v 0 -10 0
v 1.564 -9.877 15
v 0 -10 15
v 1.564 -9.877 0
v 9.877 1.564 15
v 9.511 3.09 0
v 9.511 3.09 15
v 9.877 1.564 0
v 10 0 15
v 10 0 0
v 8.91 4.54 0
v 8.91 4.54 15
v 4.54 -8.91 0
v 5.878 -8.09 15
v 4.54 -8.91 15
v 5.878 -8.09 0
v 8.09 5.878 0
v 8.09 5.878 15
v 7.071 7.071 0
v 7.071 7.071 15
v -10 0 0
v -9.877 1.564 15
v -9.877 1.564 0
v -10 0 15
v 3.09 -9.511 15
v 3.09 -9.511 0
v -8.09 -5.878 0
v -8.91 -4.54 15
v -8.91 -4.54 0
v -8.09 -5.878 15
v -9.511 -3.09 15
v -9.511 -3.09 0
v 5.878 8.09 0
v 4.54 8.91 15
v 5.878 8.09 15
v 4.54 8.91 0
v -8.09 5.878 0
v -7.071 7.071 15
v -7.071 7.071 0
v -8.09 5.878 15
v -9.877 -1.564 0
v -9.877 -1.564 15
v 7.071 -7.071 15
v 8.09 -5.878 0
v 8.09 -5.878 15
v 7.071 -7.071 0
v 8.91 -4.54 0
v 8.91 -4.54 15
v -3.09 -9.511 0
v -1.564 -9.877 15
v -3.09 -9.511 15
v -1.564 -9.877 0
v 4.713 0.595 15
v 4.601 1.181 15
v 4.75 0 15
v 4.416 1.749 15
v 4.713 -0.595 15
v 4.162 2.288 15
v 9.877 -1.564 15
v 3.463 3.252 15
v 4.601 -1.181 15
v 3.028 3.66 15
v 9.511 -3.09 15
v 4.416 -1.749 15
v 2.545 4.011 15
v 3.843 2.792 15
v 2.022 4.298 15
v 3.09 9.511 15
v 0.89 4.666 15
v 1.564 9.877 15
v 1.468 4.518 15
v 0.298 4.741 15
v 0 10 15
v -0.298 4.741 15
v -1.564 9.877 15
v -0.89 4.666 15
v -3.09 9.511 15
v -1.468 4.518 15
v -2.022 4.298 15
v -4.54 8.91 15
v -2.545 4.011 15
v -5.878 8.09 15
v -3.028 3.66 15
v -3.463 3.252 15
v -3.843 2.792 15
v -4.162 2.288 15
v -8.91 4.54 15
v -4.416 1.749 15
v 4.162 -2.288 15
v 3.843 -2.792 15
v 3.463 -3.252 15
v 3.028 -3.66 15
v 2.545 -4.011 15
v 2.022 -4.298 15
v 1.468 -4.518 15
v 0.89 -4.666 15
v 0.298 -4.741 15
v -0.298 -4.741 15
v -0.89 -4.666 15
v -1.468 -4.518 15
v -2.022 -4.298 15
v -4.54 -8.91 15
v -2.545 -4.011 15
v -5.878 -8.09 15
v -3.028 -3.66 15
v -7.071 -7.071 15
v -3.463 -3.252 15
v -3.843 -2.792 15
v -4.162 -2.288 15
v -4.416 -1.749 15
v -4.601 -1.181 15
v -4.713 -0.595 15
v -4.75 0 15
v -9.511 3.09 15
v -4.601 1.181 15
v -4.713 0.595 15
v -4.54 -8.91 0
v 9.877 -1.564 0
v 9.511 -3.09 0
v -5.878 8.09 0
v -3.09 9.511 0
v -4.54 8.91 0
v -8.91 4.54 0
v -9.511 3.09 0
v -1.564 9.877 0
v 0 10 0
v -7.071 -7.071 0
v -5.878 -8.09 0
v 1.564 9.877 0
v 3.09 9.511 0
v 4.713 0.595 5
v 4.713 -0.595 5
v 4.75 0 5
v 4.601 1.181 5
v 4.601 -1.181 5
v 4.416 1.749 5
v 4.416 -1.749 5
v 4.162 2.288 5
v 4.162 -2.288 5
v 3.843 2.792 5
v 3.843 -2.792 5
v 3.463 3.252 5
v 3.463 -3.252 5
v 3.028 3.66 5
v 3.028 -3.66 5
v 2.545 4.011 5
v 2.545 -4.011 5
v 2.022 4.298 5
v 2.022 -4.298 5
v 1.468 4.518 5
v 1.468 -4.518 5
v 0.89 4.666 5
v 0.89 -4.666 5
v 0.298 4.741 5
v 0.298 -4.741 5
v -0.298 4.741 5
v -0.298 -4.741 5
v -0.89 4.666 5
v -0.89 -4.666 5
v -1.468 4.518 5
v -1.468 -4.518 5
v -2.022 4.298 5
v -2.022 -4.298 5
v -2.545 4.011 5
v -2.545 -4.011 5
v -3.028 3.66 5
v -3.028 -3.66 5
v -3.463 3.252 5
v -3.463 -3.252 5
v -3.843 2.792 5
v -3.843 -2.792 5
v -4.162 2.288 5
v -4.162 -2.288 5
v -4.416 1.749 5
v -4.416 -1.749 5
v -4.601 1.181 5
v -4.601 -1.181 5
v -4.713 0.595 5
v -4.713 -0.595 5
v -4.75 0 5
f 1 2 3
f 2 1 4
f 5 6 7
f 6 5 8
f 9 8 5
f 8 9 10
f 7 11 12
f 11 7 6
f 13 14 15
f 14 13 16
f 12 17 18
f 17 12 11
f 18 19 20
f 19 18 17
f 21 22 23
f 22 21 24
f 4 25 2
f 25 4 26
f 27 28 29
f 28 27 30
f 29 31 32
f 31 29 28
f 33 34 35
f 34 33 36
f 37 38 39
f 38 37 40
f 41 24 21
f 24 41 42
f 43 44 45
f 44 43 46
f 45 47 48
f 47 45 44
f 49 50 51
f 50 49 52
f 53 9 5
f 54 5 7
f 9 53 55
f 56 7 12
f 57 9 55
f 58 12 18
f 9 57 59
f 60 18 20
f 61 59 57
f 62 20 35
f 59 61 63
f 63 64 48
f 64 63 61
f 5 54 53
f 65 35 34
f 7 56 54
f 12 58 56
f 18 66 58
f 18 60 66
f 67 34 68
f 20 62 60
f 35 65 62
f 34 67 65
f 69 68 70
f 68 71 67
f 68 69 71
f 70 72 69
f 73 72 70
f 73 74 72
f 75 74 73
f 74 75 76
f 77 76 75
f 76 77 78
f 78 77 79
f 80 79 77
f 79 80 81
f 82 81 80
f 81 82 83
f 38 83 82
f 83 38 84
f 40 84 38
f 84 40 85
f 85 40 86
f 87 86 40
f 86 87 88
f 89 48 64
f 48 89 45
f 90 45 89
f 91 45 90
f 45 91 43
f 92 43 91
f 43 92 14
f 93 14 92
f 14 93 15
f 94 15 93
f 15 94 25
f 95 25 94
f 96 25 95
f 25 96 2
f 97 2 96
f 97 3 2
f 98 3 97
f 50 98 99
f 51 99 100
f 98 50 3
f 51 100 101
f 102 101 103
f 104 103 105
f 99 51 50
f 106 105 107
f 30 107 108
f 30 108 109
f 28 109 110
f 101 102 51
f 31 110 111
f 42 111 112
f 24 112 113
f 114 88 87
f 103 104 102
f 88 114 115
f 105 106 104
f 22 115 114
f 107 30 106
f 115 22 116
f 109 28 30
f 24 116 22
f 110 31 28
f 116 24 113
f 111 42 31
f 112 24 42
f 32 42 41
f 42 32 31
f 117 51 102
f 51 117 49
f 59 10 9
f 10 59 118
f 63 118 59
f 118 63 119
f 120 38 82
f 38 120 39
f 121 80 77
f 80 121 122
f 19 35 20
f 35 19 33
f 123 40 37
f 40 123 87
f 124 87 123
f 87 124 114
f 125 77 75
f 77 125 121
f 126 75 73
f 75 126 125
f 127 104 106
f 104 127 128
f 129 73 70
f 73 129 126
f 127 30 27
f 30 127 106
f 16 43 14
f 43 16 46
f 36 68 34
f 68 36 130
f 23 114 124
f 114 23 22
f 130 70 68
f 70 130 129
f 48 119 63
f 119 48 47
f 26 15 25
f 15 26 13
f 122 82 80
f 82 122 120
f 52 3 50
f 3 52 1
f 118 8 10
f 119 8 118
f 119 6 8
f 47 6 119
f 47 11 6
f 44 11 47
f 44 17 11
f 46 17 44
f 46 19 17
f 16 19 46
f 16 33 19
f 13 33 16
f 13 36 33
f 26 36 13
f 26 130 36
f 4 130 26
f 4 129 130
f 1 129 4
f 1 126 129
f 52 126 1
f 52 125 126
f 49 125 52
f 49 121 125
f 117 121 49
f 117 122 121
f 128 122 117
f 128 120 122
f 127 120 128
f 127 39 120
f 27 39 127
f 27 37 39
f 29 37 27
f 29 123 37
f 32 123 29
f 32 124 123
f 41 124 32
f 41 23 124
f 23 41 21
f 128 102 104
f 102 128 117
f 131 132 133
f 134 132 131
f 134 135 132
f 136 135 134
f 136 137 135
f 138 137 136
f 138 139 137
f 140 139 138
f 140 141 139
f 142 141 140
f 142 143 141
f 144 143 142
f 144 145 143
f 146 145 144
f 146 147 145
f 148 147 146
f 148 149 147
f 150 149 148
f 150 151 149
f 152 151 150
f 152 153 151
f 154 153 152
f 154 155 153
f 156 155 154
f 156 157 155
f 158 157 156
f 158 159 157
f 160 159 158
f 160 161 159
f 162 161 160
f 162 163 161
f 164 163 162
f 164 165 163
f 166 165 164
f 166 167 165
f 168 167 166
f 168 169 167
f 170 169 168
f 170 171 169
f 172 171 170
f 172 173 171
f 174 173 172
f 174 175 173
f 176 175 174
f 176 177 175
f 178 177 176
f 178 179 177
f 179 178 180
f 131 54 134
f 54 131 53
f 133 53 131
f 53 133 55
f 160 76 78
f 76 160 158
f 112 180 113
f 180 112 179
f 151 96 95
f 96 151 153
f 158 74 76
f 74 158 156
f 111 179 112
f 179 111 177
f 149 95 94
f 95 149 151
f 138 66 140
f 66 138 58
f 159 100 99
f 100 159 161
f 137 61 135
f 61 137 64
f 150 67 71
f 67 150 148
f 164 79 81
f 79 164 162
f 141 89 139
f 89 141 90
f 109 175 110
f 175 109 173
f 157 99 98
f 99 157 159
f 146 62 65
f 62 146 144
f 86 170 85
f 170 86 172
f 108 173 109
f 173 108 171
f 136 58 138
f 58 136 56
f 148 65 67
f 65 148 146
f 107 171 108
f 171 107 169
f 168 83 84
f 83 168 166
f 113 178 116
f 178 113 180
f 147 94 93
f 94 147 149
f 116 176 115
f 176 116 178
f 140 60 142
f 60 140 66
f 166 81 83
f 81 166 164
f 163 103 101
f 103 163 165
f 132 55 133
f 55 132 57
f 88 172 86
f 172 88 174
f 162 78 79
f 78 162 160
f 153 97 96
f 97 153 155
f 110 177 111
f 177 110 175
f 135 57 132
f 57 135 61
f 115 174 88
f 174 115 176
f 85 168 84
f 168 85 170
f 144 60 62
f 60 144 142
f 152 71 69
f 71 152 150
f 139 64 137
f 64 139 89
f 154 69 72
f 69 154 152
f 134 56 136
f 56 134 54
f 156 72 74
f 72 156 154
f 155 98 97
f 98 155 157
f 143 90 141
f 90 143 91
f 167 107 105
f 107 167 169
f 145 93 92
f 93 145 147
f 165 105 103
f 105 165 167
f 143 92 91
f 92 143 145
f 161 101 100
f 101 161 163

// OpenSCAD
//measurements

//https://www.lofty.com/pages/how-to-measure-three-dimensional-objects-including-silver-ceramics-glass-sculpture


//main body (looking from front)

main_body_height = 22;
main_body_width = 120;
main_body_depth = 51;
main_body_distance_between_two_main_bodies = 29; 

//main body tube
main_body_tube_diameter = 22;
//Tube bit

tube_bit_height = 60;
tube_bit_diameter = 45;//was 30.4
tube_bit_hole_diameter = 18;

//tube screen holder
tube_screen_holder_height = tube_bit_height-10;
tube_screen_holder_diameter = 36; //+1mm
tube_screen_holder_hole_diameter = 29;


//bearing

bearing_diameter = 41;
bearing_height = 13;

nut_height = 8.5;
nut_width = 20;


 

//threaded shaft
threaded_shaft_diameter = 12;

module tube_screen_holder(){
    difference(){
        cylinder(h=tube_screen_holder_height, r=(tube_screen_holder_diameter)/2, $fn=50);
        cylinder(h=tube_screen_holder_height, r=(tube_screen_holder_hole_diameter)/2, $fn=50);
    }
}

module tube_bit(){
            cylinder(h=tube_bit_height, r=(tube_bit_diameter)/2, $fn=50);
}
module tube_bit_hole_inside(){
    cylinder(h=tube_bit_height+(main_body_height-bearing_height), r=(tube_bit_hole_diameter)/2, $fn=50);
}
    
module main_body_tube(){
    translate([main_body_height/2,0,main_body_height/2]){
        rotate ([90,0,0])
            cylinder(h=main_body_width, r=(main_body_tube_diameter)/2, $fn=50);
    }
}
module bearing(){
    //translate([main_body_depth/2,-main_body_width/2,0])
    cylinder(h=bearing_height, r=(bearing_diameter)/2, $fn=50);
}
module nut(){
    cylinder(h=bearing_diameter+(nut_height*2), r=nut_width/2, $fn=6);
   }

module holes_for_threaded_shaft(){
     translate([main_body_height/2,0,main_body_height/2]){
        rotate ([90,0,0])
            cylinder(h=main_body_width, r=(threaded_shaft_diameter)/2, $fn=50);
    }
    translate([(main_body_height/2)+main_body_distance_between_two_main_bodies,0,main_body_height/2]){
        rotate ([90,0,0])
            cylinder(h=main_body_width, r=(threaded_shaft_diameter)/2, $fn=50);
    }
}

module nut_negative(x_offset,y_offset,z_offset){
    translate([main_body_height/2+x_offset,0+y_offset,(main_body_height/2)+z_offset]){
        rotate ([90,0,0])
            nut();
    }
}
module main_body(){
  difference(){
    cylinder(h=15, r=10, $fn=40);
    translate([0,0,5]){cylinder(h=10, r=(9.5/2), $fn=50);}
  }
//color ("red") {nut_negative(0,-((main_body_width/2)-(bearing_diameter/2)-nut_height),0);}         
}


main_body();
